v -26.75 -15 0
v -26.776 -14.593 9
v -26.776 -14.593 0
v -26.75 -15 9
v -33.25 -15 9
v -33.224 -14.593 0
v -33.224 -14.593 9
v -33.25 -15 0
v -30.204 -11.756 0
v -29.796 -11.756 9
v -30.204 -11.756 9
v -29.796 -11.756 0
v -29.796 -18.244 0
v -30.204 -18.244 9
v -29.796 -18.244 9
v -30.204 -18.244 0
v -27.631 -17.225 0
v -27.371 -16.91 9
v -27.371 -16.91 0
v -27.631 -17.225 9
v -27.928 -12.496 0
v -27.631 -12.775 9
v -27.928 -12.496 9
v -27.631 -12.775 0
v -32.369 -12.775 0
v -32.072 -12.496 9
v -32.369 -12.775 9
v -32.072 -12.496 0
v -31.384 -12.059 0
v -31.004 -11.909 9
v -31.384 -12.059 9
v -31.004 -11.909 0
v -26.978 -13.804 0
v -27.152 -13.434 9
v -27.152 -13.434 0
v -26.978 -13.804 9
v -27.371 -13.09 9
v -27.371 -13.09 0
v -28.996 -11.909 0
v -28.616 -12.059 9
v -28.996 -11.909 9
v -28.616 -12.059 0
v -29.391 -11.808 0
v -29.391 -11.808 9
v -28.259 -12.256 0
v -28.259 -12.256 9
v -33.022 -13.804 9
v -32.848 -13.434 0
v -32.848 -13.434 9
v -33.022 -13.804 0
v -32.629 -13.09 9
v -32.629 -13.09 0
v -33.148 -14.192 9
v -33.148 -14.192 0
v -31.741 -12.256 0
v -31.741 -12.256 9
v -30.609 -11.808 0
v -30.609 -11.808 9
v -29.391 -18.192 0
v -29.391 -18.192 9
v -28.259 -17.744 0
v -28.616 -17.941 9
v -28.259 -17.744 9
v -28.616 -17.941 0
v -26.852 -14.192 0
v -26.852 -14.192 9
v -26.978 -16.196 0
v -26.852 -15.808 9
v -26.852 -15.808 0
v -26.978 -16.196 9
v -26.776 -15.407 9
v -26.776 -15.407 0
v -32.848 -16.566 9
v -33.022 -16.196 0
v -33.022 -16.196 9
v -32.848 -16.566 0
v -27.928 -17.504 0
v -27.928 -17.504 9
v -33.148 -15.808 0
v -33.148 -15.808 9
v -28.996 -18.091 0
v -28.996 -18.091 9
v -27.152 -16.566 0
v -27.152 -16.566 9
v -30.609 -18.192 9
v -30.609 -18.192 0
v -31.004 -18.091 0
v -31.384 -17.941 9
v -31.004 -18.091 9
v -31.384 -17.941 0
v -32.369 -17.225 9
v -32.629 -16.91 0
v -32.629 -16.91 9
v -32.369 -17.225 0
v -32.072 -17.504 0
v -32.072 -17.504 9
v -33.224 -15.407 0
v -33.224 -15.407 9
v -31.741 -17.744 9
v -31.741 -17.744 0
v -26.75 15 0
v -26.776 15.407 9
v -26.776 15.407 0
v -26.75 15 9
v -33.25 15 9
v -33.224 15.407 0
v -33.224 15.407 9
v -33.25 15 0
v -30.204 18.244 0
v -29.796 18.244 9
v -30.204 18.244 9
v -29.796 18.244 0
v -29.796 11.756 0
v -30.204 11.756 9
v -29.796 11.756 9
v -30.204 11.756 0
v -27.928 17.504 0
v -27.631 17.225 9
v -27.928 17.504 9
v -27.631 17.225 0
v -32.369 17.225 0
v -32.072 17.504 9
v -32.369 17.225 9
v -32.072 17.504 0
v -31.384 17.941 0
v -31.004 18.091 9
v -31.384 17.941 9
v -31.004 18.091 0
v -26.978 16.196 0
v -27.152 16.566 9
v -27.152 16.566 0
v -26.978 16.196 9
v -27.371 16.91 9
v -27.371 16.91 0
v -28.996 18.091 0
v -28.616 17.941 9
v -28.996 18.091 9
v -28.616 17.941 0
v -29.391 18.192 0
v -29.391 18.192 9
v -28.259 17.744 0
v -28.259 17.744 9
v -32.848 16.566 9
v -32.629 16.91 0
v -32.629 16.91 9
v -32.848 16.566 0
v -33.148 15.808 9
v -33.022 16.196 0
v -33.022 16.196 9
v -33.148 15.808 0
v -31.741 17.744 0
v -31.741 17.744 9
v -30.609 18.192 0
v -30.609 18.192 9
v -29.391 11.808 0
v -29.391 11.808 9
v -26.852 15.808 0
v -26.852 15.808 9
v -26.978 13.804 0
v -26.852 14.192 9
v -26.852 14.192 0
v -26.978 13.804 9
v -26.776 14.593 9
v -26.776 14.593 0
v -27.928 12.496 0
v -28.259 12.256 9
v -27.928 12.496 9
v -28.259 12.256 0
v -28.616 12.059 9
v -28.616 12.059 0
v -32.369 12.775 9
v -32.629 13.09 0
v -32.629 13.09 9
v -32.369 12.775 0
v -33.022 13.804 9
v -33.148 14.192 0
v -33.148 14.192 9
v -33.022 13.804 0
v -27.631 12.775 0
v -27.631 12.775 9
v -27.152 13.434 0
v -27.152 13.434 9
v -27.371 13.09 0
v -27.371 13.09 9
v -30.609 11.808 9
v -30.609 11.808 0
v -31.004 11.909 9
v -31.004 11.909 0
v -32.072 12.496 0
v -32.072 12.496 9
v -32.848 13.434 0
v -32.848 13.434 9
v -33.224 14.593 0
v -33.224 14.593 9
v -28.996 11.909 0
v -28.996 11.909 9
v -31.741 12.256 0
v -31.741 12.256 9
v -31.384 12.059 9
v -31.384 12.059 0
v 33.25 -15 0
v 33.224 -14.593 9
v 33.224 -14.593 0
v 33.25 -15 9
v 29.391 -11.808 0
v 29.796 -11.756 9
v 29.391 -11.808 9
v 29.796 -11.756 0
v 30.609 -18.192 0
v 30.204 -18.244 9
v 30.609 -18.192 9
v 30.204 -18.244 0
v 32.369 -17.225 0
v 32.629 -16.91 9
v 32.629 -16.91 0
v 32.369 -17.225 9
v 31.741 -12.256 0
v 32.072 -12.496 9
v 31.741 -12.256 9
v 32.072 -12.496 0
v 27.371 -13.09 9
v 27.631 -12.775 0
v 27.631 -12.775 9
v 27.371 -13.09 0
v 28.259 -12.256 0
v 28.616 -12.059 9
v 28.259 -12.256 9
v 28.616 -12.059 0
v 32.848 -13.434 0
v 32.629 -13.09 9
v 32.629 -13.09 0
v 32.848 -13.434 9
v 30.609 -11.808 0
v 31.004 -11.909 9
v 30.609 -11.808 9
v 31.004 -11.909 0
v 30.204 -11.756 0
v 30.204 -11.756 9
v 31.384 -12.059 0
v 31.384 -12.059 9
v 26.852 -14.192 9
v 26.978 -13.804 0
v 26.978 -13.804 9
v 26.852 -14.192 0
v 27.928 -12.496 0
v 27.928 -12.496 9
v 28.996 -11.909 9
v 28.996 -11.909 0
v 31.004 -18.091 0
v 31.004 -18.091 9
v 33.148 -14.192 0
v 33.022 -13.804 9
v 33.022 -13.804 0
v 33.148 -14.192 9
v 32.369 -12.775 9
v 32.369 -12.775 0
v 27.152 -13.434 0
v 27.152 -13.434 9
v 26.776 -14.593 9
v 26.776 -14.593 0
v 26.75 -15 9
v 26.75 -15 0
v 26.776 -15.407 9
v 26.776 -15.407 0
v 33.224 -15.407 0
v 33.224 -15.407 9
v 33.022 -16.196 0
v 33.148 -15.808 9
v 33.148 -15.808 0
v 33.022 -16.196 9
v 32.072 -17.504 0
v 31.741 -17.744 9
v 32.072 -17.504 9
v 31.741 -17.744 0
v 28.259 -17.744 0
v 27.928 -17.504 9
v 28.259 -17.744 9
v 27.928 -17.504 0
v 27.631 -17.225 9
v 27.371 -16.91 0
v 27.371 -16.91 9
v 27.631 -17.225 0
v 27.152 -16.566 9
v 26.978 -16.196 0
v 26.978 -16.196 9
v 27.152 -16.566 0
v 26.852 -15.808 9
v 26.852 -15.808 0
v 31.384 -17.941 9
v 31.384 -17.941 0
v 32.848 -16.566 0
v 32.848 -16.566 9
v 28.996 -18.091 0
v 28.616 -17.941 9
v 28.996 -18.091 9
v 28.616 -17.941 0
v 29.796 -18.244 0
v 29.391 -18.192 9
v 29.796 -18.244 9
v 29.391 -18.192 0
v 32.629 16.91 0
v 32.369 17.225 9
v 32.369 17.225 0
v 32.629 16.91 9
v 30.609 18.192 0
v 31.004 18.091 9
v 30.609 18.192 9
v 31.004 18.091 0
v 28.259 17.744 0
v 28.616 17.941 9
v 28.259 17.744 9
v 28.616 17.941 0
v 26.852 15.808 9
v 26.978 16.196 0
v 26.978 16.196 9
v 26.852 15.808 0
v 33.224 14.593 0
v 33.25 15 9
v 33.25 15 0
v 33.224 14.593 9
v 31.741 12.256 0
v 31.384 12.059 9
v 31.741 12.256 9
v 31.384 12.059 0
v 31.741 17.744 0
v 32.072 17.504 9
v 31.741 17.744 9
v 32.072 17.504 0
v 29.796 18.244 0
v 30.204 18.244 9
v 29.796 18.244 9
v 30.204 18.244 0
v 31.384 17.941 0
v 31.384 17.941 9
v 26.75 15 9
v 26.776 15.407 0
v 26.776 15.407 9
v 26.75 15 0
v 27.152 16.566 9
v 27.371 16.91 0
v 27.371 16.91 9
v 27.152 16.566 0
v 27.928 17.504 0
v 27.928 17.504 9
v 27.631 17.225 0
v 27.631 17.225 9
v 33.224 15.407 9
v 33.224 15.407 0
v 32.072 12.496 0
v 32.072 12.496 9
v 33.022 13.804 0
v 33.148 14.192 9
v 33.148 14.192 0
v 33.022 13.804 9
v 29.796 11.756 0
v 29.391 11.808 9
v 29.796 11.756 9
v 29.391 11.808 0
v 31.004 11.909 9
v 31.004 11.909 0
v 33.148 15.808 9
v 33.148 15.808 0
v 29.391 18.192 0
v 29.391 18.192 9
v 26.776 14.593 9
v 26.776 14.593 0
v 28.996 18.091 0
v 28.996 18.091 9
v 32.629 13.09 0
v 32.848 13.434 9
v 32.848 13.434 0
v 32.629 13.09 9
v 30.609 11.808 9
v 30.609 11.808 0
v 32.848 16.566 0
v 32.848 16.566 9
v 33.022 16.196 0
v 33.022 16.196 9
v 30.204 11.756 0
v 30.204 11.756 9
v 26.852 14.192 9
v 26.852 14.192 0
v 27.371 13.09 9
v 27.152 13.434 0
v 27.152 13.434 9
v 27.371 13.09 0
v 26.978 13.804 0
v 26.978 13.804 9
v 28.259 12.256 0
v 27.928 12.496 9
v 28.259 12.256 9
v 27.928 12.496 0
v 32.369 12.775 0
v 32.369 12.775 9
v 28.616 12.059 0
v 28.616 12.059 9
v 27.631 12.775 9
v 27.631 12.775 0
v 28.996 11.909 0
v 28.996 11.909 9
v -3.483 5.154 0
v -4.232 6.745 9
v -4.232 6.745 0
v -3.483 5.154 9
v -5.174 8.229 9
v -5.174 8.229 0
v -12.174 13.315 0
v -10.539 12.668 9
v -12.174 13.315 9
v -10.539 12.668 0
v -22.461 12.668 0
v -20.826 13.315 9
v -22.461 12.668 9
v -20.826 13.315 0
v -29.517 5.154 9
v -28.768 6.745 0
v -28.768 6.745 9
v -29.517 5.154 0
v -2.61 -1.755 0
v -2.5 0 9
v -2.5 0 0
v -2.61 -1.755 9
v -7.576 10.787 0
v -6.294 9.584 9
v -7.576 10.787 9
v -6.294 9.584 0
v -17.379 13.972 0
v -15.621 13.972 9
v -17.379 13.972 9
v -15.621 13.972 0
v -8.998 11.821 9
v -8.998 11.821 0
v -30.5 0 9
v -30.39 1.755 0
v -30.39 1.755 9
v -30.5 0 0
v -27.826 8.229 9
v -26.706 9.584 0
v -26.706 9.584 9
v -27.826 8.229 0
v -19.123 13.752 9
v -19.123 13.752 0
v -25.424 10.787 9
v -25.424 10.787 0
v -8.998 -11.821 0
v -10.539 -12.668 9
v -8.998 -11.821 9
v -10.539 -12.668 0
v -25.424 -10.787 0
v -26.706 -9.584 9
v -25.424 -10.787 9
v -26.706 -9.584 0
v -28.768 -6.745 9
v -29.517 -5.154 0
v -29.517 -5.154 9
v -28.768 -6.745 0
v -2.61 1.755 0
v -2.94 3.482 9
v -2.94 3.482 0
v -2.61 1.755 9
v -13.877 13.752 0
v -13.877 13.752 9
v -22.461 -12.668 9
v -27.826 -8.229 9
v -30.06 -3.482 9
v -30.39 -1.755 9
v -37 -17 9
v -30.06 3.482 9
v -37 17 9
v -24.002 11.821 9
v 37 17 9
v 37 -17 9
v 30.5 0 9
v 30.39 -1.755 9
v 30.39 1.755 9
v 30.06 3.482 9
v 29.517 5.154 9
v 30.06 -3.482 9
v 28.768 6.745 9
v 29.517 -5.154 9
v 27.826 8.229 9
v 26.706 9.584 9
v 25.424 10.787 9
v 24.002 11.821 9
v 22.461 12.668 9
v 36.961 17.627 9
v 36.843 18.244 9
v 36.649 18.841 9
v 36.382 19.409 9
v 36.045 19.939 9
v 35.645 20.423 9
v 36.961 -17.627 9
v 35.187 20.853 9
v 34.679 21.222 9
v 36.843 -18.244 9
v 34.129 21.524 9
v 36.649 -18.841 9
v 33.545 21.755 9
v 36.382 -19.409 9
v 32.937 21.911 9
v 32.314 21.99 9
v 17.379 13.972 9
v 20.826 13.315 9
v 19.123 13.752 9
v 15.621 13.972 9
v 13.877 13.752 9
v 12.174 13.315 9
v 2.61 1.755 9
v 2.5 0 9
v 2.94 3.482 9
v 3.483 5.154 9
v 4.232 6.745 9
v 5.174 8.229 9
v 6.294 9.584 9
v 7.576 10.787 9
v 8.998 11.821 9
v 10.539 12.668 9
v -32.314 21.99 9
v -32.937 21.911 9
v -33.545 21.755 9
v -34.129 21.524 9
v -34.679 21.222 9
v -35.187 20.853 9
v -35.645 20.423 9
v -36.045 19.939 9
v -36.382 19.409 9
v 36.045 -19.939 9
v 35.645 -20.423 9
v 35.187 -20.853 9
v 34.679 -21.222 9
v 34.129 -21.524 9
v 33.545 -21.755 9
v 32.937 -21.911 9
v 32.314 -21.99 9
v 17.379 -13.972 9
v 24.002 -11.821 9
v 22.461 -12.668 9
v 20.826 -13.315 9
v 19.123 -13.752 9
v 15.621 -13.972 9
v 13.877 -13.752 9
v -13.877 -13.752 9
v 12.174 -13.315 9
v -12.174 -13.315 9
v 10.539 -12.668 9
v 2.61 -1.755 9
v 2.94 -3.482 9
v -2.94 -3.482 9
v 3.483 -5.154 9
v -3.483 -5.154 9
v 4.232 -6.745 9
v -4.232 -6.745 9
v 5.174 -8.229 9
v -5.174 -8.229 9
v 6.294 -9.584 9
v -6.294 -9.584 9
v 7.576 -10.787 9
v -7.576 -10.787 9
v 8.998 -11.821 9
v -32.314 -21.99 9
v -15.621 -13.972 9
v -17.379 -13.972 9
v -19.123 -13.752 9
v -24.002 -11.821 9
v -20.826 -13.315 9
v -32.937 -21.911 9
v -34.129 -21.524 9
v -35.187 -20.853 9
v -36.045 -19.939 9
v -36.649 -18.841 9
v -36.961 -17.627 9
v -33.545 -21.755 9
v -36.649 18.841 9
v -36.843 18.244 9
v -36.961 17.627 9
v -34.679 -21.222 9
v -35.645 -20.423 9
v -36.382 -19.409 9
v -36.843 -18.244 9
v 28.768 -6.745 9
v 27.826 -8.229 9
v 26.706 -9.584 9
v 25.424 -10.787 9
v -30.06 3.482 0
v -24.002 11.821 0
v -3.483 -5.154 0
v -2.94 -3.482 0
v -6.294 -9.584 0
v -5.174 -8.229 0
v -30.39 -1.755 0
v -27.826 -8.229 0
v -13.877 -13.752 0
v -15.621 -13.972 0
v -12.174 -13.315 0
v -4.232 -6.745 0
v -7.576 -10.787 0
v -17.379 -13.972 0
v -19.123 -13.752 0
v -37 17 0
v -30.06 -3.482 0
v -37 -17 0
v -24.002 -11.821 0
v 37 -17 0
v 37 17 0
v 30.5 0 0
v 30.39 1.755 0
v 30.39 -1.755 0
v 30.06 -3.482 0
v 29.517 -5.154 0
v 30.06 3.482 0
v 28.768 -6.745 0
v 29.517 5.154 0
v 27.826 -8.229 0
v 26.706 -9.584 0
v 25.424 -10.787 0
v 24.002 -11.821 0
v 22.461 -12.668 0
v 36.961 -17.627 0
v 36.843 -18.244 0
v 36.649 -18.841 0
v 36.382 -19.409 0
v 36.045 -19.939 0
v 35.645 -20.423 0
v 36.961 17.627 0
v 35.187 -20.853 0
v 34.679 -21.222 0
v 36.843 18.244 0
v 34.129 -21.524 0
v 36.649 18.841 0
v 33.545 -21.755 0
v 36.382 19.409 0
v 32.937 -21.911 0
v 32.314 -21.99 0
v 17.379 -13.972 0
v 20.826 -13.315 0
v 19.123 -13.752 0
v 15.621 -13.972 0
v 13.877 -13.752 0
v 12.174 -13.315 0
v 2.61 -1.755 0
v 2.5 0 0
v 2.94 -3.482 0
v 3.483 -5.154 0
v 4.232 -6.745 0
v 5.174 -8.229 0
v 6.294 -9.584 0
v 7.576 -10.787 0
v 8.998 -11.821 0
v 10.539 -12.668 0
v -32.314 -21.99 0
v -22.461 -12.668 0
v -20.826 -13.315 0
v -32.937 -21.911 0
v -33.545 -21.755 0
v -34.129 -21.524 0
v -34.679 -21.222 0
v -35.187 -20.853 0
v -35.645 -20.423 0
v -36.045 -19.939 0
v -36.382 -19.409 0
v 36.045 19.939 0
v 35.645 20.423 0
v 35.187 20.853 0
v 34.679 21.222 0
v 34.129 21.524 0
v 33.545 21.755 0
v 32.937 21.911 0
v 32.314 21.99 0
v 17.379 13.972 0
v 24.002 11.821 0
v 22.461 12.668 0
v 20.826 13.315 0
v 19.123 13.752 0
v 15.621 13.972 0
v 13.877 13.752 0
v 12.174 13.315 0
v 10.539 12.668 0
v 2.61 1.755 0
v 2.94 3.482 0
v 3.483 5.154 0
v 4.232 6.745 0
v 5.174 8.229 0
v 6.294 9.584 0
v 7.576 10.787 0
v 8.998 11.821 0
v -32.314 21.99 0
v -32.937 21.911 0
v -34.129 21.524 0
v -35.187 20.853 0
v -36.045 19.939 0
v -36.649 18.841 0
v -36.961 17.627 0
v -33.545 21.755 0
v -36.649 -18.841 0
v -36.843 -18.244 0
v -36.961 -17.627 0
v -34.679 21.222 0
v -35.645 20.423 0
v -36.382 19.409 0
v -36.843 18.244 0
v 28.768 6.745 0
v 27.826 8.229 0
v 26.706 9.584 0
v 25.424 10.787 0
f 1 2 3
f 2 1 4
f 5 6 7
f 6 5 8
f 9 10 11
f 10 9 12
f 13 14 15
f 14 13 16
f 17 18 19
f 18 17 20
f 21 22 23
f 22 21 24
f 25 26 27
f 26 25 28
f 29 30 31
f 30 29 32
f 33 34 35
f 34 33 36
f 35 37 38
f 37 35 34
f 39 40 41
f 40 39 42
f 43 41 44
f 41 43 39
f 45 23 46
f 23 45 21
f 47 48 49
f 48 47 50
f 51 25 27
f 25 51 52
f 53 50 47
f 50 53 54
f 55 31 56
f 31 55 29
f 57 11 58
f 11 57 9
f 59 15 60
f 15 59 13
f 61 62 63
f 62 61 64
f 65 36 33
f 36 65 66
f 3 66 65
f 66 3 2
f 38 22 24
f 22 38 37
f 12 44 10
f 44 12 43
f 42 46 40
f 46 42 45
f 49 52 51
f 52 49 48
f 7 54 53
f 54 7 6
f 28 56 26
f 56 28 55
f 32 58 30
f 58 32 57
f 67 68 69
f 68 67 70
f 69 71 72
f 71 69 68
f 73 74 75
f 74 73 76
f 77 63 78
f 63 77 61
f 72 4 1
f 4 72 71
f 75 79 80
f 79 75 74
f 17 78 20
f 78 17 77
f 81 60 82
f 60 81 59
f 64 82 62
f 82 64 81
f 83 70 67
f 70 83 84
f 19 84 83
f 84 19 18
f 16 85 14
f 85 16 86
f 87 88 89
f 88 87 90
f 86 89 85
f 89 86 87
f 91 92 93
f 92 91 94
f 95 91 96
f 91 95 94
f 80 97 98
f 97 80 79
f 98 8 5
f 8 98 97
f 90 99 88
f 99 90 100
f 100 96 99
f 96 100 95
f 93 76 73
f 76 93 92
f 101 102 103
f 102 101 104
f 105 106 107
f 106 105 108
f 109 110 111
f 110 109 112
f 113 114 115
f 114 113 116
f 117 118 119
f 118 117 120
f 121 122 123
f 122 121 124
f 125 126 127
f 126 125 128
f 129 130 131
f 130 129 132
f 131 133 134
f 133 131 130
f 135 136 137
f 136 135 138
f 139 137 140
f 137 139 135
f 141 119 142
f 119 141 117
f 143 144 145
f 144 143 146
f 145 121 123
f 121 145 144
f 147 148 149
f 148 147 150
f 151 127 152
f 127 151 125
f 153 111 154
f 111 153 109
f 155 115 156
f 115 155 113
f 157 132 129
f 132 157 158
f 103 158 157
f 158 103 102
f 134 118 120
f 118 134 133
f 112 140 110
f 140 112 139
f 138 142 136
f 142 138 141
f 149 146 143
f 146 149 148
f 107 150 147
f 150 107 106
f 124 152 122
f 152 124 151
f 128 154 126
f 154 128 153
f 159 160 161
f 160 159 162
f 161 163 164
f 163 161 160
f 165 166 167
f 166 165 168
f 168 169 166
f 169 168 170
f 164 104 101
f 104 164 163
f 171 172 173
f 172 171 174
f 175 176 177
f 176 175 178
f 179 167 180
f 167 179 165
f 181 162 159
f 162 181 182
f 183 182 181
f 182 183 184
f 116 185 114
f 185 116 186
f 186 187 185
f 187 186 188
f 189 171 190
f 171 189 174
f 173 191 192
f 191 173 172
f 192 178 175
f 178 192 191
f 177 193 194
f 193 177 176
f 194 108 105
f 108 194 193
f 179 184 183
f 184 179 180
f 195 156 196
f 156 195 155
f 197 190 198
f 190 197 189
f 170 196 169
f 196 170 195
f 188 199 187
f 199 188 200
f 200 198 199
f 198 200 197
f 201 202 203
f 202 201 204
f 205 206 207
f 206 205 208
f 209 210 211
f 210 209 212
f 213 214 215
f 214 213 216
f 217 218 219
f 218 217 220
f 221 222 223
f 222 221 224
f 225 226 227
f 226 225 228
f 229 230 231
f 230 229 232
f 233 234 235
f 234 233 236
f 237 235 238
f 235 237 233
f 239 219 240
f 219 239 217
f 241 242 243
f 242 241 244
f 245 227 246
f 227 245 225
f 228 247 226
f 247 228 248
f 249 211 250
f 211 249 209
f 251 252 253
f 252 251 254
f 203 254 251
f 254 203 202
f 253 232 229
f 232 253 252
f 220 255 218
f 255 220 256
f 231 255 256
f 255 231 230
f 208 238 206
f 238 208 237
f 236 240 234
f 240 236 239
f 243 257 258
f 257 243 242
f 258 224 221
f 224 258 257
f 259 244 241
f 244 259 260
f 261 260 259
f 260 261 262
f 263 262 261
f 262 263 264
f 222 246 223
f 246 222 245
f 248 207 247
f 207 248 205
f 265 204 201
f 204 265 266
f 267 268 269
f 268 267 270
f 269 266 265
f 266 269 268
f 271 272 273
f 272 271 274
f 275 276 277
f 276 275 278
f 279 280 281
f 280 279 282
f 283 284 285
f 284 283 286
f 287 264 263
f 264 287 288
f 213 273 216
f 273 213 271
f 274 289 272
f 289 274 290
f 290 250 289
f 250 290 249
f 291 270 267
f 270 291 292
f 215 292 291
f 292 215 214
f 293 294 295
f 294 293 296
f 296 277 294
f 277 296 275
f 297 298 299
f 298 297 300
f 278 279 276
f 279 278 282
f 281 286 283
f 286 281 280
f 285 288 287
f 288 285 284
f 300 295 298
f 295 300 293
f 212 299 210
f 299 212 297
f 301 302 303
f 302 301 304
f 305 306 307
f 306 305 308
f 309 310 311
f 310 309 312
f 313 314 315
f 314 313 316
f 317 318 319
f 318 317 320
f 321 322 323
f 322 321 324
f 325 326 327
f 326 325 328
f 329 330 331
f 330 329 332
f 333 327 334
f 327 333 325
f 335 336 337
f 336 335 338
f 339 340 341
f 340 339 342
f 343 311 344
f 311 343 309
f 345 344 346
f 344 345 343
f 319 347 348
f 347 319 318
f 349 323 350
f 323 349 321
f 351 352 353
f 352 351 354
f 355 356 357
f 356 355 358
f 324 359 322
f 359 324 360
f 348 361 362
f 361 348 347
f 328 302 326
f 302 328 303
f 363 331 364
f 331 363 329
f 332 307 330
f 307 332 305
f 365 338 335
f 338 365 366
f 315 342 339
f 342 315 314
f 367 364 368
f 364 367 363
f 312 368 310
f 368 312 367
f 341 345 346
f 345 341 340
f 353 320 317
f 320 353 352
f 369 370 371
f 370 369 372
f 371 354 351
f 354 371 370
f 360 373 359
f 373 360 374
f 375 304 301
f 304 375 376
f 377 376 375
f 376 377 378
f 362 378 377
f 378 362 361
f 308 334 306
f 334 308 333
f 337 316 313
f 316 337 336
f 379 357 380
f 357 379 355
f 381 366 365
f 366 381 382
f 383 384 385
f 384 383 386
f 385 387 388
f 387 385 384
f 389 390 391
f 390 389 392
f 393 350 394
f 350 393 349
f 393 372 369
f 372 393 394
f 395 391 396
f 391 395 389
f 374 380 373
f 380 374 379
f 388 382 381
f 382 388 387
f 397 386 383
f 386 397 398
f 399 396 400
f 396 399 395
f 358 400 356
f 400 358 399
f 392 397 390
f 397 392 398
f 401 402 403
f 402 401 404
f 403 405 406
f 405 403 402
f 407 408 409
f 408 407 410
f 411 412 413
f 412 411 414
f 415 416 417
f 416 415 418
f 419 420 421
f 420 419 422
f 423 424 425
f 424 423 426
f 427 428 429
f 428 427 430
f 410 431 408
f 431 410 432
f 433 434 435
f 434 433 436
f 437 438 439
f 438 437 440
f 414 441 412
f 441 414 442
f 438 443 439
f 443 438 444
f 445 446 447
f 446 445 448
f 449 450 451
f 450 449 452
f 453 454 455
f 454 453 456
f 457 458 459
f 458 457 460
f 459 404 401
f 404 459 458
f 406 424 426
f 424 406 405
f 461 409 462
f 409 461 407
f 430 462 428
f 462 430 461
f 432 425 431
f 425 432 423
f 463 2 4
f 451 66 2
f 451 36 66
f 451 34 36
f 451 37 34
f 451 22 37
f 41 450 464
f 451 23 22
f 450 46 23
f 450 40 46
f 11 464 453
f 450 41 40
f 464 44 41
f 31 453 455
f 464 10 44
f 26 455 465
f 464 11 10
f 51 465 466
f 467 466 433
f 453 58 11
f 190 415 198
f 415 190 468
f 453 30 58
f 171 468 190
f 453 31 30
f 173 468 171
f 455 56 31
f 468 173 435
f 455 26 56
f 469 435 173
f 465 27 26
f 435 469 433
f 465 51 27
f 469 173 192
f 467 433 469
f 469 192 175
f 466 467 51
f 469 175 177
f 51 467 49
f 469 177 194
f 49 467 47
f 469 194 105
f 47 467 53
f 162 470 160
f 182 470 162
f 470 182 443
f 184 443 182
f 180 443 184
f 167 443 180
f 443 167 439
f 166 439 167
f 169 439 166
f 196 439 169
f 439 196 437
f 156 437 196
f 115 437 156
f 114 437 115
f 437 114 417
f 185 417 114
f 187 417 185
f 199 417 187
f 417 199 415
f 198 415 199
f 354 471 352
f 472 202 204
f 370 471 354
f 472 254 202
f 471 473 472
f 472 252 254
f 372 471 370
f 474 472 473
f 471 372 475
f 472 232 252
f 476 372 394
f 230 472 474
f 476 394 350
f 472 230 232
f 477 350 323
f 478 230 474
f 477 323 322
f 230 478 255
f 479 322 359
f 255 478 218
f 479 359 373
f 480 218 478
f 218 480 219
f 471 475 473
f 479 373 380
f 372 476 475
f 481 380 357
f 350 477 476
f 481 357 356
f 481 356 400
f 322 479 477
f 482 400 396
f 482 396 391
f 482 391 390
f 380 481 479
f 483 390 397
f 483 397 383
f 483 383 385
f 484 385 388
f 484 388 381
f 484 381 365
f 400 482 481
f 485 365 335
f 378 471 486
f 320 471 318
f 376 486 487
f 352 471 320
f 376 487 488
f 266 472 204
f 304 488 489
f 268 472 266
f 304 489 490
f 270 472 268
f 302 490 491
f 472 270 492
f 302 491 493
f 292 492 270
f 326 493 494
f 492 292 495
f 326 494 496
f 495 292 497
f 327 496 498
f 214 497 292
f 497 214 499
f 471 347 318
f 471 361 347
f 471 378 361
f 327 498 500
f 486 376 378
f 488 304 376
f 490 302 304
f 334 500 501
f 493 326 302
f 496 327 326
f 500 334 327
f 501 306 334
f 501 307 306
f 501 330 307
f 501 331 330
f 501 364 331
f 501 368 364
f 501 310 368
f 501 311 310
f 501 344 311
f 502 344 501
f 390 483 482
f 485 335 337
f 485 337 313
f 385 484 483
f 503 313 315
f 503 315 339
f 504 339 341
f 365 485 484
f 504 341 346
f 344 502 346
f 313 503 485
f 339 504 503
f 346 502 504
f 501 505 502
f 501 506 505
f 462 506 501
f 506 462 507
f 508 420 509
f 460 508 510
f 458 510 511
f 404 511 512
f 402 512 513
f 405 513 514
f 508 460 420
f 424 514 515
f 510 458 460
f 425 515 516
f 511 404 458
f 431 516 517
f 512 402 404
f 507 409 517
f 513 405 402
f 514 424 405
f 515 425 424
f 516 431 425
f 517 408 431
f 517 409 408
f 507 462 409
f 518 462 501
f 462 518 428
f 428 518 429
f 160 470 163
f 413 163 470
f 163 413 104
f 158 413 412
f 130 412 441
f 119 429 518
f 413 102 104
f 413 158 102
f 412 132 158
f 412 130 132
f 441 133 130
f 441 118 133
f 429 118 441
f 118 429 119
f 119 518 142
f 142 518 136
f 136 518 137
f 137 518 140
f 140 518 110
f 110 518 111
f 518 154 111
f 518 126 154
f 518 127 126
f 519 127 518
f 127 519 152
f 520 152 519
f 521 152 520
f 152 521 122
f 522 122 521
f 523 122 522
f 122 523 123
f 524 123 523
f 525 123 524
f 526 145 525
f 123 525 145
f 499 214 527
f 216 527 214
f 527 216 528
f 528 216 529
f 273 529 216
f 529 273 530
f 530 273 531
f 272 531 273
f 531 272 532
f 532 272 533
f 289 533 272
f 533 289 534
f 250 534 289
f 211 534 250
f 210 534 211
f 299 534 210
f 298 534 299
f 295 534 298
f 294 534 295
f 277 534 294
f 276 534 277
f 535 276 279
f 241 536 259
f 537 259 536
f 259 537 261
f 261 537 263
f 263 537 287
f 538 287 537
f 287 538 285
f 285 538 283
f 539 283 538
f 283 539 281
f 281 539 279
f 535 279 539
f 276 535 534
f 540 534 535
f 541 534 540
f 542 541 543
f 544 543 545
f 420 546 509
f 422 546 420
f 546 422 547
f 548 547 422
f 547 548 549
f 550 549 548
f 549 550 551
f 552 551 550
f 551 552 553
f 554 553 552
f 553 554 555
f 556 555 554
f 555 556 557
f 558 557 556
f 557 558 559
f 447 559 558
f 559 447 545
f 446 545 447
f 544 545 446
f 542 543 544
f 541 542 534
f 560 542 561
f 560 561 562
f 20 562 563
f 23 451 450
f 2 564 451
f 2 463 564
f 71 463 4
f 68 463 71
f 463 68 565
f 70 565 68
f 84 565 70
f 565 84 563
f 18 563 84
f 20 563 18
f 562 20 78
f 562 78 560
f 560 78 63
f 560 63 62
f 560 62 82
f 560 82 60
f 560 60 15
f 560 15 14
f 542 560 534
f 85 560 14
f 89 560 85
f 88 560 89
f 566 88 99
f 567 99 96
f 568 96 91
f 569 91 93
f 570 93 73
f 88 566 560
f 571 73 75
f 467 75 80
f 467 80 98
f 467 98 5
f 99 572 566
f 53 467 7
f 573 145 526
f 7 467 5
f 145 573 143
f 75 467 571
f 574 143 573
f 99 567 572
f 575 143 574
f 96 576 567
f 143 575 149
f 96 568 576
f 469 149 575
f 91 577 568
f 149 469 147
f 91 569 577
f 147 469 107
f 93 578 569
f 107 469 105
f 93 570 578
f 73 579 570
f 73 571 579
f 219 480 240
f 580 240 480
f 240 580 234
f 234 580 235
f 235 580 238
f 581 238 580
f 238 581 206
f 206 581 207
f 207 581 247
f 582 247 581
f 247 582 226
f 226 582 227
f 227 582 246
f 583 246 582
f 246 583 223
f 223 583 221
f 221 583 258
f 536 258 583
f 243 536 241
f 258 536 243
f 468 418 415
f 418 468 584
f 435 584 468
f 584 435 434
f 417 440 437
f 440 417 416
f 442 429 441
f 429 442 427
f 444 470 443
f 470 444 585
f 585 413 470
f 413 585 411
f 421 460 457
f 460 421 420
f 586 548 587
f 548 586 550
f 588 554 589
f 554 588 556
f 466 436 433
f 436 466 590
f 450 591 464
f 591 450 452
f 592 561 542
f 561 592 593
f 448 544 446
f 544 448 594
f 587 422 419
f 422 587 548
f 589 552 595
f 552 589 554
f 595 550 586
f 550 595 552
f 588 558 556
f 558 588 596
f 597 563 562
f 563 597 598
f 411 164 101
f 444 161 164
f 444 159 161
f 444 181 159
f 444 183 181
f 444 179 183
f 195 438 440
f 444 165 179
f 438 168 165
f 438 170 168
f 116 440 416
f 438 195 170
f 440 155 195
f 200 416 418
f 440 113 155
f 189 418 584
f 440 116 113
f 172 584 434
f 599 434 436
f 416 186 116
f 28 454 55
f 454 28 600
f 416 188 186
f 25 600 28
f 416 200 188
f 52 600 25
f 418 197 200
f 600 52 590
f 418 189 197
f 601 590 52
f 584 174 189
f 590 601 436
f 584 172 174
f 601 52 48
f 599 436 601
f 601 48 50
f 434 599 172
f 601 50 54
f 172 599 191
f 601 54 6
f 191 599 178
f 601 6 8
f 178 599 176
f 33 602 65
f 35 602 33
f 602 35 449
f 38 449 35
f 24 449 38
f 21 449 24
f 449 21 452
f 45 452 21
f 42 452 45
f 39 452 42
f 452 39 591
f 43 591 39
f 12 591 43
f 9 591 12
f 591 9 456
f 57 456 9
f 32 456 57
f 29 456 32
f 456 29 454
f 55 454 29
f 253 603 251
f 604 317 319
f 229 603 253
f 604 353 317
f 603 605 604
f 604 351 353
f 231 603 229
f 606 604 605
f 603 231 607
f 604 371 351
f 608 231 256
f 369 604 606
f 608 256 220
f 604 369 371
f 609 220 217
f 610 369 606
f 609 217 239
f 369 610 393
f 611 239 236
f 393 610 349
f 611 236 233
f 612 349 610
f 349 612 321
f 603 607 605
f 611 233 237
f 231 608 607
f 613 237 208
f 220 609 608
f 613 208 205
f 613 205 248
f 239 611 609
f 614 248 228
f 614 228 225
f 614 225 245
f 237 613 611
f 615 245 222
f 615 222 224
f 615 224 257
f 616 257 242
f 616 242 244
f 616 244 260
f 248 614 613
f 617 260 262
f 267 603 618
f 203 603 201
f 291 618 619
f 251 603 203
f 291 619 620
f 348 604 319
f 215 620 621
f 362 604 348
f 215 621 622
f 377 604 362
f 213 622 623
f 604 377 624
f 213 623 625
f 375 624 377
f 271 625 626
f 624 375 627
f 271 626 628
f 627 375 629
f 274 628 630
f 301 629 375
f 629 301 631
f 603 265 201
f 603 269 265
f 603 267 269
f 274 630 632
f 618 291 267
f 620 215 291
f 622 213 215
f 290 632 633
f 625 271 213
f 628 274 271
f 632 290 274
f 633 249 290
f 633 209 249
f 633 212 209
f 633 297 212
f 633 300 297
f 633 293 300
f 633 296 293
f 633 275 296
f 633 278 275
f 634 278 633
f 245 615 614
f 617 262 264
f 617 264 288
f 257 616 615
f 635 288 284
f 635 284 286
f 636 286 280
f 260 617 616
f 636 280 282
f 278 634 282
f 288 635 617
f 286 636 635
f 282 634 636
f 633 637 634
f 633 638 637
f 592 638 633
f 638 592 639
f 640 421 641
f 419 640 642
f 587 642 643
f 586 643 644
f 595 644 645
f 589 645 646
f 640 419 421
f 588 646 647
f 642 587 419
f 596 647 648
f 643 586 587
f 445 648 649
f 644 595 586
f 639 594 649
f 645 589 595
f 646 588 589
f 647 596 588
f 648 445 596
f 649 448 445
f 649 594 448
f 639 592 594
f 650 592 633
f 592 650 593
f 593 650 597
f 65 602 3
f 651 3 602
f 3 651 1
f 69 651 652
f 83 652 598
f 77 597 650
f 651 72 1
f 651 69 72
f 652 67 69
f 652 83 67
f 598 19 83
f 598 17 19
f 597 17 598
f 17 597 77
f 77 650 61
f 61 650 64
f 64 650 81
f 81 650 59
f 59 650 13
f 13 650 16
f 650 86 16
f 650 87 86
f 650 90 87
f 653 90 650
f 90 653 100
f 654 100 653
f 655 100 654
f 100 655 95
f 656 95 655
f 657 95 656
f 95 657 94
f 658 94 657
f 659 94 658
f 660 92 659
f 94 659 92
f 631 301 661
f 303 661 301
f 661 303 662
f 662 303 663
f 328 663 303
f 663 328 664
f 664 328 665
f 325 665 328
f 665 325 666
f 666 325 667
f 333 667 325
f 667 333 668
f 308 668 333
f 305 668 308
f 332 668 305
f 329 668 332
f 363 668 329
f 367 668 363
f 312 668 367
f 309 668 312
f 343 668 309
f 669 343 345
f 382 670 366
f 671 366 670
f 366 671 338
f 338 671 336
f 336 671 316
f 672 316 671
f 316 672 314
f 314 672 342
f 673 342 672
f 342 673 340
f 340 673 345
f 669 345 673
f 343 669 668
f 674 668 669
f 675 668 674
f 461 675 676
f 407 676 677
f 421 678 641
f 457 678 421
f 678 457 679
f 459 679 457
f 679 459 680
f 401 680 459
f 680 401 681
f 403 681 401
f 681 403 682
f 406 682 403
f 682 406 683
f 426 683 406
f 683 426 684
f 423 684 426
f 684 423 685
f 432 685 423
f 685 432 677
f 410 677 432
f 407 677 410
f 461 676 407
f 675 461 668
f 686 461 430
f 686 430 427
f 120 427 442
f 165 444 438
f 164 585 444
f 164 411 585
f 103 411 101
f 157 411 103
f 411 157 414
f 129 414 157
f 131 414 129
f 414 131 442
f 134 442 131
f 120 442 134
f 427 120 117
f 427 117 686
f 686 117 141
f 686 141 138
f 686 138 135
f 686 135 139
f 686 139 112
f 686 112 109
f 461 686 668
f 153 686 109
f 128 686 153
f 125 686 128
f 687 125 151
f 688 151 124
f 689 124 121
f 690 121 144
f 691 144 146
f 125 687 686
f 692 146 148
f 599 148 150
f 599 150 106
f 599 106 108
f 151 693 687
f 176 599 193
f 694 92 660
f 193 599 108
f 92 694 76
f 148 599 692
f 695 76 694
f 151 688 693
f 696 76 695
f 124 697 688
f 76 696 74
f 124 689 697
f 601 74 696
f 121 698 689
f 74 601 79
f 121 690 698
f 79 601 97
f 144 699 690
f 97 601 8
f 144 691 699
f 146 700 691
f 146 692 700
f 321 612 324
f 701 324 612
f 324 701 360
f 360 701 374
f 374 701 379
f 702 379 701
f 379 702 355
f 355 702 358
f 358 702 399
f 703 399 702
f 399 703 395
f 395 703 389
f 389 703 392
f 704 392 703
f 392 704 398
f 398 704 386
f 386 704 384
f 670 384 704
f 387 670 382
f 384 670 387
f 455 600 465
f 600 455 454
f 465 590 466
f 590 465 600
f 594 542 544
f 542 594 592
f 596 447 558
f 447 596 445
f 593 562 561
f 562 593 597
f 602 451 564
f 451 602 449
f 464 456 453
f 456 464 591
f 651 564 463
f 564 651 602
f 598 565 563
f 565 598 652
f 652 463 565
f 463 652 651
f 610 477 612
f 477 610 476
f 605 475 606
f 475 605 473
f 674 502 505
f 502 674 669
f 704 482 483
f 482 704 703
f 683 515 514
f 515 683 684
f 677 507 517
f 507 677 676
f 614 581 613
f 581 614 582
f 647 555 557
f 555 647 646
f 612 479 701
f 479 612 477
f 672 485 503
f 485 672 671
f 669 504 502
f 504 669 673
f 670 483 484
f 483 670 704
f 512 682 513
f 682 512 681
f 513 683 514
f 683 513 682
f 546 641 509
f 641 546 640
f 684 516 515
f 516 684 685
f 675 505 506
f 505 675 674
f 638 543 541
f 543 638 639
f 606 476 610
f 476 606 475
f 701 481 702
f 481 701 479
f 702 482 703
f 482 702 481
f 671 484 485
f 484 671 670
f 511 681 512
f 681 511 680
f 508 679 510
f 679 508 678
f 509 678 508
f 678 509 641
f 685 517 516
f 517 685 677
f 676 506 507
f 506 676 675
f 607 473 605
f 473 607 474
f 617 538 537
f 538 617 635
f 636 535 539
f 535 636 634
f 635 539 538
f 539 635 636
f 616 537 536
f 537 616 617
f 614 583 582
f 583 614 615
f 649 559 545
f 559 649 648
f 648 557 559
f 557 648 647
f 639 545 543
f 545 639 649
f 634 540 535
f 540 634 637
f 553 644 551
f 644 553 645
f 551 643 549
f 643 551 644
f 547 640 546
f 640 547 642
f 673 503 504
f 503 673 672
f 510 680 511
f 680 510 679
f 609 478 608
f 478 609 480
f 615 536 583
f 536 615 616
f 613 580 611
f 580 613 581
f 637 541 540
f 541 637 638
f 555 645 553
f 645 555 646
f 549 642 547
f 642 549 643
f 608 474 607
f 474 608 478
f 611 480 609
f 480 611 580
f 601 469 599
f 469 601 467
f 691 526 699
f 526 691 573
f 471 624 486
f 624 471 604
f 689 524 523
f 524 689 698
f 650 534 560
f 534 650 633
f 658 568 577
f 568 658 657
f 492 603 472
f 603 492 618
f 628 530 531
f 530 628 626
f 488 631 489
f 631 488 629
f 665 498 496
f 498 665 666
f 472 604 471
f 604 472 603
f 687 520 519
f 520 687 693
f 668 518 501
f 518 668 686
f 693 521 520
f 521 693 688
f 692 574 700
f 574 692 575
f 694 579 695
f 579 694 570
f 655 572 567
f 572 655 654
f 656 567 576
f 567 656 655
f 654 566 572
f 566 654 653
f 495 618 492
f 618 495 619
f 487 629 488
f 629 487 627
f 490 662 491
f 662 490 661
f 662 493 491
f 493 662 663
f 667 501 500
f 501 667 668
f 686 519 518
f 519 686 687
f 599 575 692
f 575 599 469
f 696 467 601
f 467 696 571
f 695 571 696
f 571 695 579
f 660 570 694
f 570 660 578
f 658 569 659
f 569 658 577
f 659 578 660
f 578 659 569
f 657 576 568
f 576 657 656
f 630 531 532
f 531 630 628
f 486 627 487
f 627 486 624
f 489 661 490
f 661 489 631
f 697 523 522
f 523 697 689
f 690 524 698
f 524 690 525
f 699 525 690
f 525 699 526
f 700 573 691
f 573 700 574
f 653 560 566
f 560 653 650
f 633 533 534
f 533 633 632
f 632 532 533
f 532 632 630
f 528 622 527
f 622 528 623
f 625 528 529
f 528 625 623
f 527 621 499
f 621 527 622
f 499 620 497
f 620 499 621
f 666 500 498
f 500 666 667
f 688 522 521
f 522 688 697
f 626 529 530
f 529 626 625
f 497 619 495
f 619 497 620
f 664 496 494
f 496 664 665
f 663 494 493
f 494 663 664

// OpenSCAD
$fn = 50;


difference() {
	union() {
		hull() {
			translate(v = [-32.0000000000, 17.0000000000, 0]) {
				cylinder(h = 9, r = 5);
			}
			translate(v = [32.0000000000, 17.0000000000, 0]) {
				cylinder(h = 9, r = 5);
			}
			translate(v = [-32.0000000000, -17.0000000000, 0]) {
				cylinder(h = 9, r = 5);
			}
			translate(v = [32.0000000000, -17.0000000000, 0]) {
				cylinder(h = 9, r = 5);
			}
		}
	}
	union() {
		#translate(v = [-30.0000000000, -15.0000000000, -100.0000000000]) {
			cylinder(h = 200, r = 3.2500000000);
		}
		#translate(v = [-30.0000000000, 15.0000000000, -100.0000000000]) {
			cylinder(h = 200, r = 3.2500000000);
		}
		#translate(v = [30.0000000000, -15.0000000000, -100.0000000000]) {
			cylinder(h = 200, r = 3.2500000000);
		}
		#translate(v = [30.0000000000, 15.0000000000, -100.0000000000]) {
			cylinder(h = 200, r = 3.2500000000);
		}
		#translate(v = [-16.5000000000, 0, 0]) {
			cylinder(h = 9, r = 14.0000000000);
		}
		#translate(v = [16.5000000000, 0, 0]) {
			cylinder(h = 9, r = 14.0000000000);
		}
	}
}
